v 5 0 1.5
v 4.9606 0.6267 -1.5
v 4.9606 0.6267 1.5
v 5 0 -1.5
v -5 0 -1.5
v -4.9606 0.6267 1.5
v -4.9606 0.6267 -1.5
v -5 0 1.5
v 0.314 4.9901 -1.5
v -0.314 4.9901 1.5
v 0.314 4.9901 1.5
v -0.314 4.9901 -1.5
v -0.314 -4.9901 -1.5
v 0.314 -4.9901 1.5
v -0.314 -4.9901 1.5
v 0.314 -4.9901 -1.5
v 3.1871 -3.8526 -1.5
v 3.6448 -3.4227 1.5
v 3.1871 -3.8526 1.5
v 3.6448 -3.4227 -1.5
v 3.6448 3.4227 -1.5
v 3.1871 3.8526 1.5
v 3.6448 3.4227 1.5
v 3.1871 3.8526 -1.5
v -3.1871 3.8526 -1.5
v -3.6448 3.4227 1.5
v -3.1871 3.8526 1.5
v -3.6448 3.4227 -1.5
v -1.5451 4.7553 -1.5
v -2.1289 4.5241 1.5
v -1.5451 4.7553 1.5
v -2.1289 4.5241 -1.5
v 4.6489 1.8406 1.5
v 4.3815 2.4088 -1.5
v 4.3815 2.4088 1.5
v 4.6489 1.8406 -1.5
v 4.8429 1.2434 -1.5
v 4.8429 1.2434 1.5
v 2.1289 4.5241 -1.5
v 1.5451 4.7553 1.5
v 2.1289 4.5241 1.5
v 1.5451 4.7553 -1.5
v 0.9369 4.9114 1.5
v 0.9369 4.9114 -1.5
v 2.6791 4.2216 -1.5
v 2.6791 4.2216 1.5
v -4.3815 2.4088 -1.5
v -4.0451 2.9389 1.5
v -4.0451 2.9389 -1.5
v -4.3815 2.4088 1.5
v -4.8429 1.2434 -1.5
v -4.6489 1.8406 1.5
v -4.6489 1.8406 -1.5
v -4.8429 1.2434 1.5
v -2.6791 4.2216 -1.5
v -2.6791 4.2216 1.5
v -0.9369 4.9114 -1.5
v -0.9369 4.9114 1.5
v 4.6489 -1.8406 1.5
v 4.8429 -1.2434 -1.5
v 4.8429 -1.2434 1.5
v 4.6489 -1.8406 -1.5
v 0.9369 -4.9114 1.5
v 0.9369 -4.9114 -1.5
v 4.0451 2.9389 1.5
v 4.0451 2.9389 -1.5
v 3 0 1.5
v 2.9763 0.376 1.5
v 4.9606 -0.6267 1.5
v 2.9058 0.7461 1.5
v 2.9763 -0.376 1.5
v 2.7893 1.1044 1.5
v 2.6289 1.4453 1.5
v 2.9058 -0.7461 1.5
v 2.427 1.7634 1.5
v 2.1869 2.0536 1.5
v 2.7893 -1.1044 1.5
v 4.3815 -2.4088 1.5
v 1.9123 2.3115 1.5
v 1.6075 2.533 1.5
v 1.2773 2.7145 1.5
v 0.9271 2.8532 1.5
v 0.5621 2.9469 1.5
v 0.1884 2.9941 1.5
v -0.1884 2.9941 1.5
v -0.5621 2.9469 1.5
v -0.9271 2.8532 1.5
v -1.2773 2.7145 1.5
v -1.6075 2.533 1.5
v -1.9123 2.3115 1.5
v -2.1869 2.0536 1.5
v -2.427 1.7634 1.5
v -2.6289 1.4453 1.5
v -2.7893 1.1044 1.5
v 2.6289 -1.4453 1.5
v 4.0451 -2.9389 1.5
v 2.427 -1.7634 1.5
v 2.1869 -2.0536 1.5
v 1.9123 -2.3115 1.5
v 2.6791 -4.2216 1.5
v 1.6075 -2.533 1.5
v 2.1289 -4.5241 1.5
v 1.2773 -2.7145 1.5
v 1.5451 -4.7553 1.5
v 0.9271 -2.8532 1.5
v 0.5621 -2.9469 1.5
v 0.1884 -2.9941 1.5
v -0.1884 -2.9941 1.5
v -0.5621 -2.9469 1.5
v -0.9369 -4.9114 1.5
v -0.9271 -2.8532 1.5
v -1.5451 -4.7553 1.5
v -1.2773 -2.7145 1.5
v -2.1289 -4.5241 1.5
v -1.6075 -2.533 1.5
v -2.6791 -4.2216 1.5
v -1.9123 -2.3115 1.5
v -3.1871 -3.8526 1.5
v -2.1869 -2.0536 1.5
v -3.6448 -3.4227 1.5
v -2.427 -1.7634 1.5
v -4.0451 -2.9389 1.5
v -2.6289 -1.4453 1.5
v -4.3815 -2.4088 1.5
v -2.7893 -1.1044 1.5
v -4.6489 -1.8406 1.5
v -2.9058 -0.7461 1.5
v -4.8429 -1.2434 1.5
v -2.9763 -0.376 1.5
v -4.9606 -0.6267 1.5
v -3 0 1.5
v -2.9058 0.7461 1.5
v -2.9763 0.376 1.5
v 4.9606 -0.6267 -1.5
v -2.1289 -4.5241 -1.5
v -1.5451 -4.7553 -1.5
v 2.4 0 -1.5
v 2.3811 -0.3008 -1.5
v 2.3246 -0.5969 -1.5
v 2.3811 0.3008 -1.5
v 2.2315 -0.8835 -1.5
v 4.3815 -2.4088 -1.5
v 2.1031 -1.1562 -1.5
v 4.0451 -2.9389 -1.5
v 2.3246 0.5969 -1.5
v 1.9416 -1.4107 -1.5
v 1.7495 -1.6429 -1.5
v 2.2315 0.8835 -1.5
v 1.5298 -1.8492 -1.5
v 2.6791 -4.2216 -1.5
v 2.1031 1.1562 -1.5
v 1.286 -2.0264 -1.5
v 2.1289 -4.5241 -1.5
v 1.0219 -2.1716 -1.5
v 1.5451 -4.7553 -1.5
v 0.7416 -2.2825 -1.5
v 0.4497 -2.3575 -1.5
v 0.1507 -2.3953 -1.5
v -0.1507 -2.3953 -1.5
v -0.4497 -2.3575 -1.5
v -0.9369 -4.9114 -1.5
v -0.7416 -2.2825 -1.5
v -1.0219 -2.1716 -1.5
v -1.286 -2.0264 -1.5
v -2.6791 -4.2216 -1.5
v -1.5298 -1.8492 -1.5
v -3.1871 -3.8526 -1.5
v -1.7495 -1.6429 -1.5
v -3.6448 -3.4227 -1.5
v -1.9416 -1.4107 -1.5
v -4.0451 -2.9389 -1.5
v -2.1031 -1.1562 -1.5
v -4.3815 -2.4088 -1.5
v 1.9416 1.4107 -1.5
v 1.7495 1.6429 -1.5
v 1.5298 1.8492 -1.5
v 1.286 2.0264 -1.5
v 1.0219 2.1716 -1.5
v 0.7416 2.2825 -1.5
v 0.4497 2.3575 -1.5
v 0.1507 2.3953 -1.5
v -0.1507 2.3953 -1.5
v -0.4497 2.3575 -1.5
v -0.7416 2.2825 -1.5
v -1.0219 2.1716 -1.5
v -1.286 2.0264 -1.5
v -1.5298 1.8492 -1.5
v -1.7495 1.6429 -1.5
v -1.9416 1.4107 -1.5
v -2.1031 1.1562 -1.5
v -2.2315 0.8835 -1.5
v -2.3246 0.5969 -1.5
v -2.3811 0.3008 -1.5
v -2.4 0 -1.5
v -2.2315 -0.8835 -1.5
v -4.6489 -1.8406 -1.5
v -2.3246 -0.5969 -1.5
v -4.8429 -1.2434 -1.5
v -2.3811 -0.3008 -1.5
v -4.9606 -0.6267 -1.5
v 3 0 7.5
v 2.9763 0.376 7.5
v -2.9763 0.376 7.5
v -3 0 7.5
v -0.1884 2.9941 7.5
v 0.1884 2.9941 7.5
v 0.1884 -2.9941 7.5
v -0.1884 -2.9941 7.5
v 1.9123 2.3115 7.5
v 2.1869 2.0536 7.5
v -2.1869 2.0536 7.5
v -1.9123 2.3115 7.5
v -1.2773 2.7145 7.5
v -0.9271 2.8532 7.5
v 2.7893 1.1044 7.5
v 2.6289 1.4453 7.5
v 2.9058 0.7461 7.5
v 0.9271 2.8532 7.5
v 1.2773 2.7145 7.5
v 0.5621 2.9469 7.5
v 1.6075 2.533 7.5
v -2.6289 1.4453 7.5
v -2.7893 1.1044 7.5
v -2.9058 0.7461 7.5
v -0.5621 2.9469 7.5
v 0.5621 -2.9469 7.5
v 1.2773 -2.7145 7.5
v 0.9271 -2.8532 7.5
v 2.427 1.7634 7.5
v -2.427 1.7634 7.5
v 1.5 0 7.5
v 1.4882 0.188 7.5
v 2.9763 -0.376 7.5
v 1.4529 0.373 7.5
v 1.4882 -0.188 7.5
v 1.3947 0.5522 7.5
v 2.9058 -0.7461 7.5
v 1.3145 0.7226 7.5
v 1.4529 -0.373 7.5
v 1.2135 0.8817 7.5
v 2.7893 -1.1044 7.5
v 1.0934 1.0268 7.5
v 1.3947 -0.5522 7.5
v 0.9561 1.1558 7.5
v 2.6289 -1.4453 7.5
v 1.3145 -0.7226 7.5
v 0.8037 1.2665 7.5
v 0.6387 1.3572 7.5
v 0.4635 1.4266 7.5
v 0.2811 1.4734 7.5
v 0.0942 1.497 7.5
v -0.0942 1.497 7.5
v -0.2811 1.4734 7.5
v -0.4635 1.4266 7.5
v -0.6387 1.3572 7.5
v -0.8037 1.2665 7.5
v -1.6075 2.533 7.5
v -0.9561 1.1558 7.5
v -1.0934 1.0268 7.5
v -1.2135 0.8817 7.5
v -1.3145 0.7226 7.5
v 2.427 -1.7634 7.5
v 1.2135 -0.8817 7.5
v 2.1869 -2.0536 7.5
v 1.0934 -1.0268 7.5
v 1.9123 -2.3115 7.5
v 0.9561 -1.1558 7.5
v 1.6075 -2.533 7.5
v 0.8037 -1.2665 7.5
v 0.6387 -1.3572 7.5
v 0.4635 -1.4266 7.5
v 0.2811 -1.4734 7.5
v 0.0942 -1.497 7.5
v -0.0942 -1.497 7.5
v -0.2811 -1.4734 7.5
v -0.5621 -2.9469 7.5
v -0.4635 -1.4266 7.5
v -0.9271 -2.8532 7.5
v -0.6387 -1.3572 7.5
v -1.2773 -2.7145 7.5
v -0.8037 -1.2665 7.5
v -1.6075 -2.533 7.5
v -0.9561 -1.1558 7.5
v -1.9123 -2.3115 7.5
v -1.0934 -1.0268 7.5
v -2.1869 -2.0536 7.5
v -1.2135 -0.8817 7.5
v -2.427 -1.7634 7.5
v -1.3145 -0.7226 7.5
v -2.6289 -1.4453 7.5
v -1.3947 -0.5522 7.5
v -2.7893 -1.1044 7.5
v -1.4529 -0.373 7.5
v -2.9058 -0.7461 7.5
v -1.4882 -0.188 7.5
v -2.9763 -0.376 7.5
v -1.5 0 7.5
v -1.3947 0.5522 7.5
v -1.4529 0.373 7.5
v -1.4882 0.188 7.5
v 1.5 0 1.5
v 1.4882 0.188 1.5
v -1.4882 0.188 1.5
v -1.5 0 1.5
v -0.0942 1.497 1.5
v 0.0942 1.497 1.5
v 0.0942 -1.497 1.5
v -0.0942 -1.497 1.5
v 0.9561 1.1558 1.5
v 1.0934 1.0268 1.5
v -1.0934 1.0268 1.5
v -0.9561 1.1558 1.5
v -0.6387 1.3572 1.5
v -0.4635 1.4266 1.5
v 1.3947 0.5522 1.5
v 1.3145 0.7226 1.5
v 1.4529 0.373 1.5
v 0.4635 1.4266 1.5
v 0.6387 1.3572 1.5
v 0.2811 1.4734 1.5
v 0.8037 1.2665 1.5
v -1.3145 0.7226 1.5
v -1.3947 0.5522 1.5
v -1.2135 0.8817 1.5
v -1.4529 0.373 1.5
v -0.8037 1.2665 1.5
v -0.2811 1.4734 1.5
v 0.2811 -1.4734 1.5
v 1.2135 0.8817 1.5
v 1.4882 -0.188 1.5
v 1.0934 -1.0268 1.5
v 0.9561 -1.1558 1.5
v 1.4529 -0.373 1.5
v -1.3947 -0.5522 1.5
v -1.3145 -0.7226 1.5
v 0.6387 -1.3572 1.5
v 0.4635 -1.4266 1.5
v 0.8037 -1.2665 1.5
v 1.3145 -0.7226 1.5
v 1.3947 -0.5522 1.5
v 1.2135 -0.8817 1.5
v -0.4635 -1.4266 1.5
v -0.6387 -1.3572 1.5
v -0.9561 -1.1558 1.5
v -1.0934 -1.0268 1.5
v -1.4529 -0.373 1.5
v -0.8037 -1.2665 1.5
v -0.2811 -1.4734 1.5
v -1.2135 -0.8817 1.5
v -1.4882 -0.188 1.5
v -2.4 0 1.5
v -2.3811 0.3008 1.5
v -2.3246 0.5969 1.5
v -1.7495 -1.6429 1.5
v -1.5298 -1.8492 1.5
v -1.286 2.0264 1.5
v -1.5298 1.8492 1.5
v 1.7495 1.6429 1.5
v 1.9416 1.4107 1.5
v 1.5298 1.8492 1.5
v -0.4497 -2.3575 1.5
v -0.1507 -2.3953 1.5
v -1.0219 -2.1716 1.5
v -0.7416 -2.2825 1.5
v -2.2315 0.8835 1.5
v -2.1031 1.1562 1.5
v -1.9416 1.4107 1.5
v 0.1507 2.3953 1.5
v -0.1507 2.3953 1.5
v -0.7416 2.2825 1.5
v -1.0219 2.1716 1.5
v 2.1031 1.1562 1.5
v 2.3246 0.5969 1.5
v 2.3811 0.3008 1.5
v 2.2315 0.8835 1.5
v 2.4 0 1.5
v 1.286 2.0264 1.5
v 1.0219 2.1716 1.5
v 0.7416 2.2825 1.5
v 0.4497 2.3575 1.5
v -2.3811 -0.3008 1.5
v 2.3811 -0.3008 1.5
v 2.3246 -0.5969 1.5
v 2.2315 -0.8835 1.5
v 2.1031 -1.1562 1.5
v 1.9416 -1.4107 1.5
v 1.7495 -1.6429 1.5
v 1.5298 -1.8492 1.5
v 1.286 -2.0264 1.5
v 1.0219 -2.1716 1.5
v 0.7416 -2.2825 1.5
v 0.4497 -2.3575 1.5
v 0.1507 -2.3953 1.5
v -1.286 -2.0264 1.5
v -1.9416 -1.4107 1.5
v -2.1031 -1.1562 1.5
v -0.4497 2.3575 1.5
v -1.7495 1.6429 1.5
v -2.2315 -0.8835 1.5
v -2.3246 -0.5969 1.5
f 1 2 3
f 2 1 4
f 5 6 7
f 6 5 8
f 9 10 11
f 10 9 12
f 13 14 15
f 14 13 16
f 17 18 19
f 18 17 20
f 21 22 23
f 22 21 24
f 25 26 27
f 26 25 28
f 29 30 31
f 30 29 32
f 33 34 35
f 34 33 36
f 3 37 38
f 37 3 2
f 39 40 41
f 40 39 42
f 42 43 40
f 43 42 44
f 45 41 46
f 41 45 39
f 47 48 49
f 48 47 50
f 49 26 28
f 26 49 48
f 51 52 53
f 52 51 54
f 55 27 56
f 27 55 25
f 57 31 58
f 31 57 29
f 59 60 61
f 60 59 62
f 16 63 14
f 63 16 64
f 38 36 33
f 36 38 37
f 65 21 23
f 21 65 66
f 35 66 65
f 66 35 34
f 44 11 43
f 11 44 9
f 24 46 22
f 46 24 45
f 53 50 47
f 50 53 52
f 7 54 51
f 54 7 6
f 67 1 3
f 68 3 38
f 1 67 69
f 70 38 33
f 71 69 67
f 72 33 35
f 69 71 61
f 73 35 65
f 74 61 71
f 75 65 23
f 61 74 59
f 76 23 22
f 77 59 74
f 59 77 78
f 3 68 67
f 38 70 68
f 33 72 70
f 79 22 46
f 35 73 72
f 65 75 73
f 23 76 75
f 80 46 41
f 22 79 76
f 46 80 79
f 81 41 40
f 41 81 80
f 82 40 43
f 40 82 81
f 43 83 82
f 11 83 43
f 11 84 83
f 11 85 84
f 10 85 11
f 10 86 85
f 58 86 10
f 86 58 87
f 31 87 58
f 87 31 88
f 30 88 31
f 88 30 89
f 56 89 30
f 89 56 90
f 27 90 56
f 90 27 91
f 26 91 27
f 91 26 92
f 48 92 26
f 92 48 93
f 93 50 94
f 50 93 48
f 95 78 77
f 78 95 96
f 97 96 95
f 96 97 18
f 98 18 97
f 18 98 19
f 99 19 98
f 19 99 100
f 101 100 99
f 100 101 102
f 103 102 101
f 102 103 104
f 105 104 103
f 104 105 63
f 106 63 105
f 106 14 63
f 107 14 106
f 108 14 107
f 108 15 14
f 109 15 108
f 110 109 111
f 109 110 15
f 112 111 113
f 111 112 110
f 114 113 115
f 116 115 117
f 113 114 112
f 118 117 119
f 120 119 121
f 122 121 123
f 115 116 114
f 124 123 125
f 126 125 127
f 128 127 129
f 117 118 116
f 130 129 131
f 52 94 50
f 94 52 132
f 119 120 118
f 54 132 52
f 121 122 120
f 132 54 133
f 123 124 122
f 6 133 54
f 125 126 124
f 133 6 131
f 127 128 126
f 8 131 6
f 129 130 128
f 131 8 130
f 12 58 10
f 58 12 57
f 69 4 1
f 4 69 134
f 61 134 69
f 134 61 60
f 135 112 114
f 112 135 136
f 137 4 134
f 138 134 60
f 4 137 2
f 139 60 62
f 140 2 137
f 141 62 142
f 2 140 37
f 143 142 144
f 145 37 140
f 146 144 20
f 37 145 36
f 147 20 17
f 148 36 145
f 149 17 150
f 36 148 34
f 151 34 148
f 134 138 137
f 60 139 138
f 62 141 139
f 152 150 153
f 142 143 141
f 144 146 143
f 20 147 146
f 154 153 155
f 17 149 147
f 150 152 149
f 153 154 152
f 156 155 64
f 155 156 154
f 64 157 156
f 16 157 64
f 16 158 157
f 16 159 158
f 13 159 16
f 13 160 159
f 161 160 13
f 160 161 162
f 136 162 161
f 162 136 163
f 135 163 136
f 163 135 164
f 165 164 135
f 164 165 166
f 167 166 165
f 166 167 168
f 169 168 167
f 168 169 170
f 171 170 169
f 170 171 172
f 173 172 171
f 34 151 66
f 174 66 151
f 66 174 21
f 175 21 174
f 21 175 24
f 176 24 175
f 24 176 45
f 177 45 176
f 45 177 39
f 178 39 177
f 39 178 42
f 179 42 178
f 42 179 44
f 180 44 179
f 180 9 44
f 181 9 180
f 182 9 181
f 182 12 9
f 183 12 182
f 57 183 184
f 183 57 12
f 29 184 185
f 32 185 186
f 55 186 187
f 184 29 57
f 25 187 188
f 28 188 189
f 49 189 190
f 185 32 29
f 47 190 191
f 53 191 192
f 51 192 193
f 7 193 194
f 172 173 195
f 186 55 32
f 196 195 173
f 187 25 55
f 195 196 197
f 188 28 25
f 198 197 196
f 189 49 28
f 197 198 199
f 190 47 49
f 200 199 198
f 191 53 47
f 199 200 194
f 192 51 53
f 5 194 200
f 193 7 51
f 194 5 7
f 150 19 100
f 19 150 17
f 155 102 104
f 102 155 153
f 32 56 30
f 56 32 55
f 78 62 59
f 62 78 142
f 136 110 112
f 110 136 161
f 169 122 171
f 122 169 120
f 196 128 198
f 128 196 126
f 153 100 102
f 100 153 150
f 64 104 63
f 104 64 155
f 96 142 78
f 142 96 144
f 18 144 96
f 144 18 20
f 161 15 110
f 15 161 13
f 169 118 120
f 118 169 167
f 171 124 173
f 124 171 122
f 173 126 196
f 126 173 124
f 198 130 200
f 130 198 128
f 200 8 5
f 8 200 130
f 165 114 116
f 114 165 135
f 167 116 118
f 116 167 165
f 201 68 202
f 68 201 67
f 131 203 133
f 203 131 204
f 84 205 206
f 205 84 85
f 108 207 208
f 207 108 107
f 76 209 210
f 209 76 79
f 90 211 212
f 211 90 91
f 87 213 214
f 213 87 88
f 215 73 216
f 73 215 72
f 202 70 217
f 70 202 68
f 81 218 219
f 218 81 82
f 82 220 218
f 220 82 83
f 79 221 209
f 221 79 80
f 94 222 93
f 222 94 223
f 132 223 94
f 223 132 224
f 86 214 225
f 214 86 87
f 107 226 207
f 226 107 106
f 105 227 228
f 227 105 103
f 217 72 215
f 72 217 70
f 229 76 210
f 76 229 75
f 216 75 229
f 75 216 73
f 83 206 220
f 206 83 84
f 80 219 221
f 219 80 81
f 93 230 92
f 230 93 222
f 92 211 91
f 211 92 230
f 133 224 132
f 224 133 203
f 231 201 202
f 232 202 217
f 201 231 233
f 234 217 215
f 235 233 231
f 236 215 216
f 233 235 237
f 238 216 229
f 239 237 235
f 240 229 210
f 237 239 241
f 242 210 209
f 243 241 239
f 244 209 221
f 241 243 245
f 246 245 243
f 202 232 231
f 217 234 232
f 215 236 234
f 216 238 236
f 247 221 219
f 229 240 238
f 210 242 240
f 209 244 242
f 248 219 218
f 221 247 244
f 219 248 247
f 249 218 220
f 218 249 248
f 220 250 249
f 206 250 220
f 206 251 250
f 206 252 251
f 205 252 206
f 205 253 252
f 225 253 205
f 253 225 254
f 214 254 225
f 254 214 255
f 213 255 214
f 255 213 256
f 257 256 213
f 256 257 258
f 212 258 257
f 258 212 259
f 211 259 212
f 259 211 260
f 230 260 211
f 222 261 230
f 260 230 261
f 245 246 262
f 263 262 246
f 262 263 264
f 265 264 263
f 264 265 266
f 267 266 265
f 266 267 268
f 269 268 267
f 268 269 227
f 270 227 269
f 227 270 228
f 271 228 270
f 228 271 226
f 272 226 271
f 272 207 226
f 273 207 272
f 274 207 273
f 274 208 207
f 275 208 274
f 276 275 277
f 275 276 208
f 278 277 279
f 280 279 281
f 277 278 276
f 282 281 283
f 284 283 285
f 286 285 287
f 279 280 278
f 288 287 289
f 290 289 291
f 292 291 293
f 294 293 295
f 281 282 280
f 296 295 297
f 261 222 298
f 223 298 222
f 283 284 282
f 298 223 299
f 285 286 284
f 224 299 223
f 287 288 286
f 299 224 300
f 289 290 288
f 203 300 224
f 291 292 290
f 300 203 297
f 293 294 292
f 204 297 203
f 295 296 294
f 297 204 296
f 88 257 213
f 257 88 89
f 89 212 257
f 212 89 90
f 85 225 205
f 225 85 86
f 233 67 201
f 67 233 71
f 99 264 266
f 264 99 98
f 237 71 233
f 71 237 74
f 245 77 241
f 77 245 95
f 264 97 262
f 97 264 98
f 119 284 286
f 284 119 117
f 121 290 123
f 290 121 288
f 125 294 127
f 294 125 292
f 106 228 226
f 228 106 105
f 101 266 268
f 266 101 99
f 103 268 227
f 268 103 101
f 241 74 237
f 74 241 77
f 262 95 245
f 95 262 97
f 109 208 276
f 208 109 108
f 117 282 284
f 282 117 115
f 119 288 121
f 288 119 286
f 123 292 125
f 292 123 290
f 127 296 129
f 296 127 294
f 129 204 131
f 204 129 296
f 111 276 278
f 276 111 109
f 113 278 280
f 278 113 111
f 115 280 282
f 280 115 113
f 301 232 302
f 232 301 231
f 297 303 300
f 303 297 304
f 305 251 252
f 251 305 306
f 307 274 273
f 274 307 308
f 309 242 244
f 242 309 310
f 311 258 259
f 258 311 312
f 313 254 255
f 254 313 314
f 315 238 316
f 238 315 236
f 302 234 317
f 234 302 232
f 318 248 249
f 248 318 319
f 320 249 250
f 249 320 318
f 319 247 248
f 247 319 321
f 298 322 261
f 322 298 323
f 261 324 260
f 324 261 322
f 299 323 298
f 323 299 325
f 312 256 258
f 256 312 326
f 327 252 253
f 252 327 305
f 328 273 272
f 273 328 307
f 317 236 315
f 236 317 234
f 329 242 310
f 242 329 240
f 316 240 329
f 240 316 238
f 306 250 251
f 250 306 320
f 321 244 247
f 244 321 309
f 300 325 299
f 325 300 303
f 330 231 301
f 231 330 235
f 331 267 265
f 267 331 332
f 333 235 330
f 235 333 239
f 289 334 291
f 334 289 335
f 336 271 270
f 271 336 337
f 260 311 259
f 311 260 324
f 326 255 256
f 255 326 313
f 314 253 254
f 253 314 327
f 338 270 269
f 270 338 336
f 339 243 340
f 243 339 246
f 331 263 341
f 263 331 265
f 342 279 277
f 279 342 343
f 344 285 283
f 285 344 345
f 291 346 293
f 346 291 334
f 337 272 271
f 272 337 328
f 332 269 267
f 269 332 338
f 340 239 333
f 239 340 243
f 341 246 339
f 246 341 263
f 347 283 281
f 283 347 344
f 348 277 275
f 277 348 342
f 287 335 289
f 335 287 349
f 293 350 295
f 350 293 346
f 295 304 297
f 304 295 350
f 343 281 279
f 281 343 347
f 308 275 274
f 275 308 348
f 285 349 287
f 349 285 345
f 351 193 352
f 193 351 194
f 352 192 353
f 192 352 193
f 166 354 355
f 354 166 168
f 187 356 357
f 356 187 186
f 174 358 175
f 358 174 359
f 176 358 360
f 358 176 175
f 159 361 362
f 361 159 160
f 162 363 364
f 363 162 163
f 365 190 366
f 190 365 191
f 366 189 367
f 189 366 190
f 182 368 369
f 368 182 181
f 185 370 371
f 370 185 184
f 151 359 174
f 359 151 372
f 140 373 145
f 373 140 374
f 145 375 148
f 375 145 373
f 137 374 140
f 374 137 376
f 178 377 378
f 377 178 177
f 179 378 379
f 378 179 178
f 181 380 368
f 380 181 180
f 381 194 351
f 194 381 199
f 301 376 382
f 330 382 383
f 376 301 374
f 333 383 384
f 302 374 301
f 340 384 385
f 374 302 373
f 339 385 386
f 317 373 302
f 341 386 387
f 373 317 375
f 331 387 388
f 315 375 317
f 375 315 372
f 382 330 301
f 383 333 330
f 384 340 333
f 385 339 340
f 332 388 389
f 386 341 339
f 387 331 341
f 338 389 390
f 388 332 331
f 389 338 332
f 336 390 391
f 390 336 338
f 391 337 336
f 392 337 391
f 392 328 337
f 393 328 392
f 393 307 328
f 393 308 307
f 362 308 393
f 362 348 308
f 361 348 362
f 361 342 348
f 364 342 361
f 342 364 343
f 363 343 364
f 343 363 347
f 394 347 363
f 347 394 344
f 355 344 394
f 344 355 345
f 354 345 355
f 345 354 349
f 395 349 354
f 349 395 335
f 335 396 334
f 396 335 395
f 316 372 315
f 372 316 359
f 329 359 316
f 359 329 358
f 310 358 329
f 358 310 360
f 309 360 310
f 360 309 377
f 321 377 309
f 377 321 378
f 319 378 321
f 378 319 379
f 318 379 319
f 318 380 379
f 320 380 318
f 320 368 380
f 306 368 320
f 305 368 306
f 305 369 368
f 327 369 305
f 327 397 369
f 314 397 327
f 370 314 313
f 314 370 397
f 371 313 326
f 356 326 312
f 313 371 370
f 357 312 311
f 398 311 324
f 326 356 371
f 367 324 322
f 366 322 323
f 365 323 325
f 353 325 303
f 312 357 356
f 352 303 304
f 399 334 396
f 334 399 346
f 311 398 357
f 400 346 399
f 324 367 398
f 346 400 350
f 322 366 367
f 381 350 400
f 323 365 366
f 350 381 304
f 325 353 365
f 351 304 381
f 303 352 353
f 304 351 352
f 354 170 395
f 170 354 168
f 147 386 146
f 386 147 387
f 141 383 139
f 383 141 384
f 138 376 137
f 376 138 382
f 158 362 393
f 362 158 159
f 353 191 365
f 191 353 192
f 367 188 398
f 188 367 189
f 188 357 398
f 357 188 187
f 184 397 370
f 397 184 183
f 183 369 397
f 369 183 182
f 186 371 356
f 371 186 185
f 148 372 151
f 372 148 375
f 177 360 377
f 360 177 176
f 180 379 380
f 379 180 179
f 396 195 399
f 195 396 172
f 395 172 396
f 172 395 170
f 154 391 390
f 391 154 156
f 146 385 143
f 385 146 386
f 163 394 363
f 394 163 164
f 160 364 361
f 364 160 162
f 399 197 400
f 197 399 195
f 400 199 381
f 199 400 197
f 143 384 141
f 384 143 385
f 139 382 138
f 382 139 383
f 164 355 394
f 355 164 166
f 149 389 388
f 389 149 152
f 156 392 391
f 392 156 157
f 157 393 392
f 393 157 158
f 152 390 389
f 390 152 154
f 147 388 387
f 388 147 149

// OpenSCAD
$fn = 50;


difference() {
	union() {
		translate(v = [0, 0, -1.5000000000]) {
			rotate(a = [0, 0, 0]) {
				cylinder(h = 3, r = 5.0000000000);
			}
		}
		translate(v = [0, 0, -1.5000000000]) {
			rotate(a = [0, 0, 0]) {
				cylinder(h = 9, r = 3.0000000000);
			}
		}
	}
	union() {
		translate(v = [0, 0, -125.0000000000]) {
			rotate(a = [0, 0, 0]) {
				cylinder(h = 250, r = 1.5000000000);
			}
		}
		#translate(v = [0, 0, 1.5000000000]) {
			rotate(a = [0, 180, 0]) {
				cylinder(h = 3, r1 = 2.4000000000, r2 = 2.4000000000);
			}
		}
		#translate(v = [0, 0, 7.5000000000]) {
			rotate(a = [0, 180, 0]) {
				cylinder(h = 9, r = 1.5000000000);
			}
		}
	}
}
